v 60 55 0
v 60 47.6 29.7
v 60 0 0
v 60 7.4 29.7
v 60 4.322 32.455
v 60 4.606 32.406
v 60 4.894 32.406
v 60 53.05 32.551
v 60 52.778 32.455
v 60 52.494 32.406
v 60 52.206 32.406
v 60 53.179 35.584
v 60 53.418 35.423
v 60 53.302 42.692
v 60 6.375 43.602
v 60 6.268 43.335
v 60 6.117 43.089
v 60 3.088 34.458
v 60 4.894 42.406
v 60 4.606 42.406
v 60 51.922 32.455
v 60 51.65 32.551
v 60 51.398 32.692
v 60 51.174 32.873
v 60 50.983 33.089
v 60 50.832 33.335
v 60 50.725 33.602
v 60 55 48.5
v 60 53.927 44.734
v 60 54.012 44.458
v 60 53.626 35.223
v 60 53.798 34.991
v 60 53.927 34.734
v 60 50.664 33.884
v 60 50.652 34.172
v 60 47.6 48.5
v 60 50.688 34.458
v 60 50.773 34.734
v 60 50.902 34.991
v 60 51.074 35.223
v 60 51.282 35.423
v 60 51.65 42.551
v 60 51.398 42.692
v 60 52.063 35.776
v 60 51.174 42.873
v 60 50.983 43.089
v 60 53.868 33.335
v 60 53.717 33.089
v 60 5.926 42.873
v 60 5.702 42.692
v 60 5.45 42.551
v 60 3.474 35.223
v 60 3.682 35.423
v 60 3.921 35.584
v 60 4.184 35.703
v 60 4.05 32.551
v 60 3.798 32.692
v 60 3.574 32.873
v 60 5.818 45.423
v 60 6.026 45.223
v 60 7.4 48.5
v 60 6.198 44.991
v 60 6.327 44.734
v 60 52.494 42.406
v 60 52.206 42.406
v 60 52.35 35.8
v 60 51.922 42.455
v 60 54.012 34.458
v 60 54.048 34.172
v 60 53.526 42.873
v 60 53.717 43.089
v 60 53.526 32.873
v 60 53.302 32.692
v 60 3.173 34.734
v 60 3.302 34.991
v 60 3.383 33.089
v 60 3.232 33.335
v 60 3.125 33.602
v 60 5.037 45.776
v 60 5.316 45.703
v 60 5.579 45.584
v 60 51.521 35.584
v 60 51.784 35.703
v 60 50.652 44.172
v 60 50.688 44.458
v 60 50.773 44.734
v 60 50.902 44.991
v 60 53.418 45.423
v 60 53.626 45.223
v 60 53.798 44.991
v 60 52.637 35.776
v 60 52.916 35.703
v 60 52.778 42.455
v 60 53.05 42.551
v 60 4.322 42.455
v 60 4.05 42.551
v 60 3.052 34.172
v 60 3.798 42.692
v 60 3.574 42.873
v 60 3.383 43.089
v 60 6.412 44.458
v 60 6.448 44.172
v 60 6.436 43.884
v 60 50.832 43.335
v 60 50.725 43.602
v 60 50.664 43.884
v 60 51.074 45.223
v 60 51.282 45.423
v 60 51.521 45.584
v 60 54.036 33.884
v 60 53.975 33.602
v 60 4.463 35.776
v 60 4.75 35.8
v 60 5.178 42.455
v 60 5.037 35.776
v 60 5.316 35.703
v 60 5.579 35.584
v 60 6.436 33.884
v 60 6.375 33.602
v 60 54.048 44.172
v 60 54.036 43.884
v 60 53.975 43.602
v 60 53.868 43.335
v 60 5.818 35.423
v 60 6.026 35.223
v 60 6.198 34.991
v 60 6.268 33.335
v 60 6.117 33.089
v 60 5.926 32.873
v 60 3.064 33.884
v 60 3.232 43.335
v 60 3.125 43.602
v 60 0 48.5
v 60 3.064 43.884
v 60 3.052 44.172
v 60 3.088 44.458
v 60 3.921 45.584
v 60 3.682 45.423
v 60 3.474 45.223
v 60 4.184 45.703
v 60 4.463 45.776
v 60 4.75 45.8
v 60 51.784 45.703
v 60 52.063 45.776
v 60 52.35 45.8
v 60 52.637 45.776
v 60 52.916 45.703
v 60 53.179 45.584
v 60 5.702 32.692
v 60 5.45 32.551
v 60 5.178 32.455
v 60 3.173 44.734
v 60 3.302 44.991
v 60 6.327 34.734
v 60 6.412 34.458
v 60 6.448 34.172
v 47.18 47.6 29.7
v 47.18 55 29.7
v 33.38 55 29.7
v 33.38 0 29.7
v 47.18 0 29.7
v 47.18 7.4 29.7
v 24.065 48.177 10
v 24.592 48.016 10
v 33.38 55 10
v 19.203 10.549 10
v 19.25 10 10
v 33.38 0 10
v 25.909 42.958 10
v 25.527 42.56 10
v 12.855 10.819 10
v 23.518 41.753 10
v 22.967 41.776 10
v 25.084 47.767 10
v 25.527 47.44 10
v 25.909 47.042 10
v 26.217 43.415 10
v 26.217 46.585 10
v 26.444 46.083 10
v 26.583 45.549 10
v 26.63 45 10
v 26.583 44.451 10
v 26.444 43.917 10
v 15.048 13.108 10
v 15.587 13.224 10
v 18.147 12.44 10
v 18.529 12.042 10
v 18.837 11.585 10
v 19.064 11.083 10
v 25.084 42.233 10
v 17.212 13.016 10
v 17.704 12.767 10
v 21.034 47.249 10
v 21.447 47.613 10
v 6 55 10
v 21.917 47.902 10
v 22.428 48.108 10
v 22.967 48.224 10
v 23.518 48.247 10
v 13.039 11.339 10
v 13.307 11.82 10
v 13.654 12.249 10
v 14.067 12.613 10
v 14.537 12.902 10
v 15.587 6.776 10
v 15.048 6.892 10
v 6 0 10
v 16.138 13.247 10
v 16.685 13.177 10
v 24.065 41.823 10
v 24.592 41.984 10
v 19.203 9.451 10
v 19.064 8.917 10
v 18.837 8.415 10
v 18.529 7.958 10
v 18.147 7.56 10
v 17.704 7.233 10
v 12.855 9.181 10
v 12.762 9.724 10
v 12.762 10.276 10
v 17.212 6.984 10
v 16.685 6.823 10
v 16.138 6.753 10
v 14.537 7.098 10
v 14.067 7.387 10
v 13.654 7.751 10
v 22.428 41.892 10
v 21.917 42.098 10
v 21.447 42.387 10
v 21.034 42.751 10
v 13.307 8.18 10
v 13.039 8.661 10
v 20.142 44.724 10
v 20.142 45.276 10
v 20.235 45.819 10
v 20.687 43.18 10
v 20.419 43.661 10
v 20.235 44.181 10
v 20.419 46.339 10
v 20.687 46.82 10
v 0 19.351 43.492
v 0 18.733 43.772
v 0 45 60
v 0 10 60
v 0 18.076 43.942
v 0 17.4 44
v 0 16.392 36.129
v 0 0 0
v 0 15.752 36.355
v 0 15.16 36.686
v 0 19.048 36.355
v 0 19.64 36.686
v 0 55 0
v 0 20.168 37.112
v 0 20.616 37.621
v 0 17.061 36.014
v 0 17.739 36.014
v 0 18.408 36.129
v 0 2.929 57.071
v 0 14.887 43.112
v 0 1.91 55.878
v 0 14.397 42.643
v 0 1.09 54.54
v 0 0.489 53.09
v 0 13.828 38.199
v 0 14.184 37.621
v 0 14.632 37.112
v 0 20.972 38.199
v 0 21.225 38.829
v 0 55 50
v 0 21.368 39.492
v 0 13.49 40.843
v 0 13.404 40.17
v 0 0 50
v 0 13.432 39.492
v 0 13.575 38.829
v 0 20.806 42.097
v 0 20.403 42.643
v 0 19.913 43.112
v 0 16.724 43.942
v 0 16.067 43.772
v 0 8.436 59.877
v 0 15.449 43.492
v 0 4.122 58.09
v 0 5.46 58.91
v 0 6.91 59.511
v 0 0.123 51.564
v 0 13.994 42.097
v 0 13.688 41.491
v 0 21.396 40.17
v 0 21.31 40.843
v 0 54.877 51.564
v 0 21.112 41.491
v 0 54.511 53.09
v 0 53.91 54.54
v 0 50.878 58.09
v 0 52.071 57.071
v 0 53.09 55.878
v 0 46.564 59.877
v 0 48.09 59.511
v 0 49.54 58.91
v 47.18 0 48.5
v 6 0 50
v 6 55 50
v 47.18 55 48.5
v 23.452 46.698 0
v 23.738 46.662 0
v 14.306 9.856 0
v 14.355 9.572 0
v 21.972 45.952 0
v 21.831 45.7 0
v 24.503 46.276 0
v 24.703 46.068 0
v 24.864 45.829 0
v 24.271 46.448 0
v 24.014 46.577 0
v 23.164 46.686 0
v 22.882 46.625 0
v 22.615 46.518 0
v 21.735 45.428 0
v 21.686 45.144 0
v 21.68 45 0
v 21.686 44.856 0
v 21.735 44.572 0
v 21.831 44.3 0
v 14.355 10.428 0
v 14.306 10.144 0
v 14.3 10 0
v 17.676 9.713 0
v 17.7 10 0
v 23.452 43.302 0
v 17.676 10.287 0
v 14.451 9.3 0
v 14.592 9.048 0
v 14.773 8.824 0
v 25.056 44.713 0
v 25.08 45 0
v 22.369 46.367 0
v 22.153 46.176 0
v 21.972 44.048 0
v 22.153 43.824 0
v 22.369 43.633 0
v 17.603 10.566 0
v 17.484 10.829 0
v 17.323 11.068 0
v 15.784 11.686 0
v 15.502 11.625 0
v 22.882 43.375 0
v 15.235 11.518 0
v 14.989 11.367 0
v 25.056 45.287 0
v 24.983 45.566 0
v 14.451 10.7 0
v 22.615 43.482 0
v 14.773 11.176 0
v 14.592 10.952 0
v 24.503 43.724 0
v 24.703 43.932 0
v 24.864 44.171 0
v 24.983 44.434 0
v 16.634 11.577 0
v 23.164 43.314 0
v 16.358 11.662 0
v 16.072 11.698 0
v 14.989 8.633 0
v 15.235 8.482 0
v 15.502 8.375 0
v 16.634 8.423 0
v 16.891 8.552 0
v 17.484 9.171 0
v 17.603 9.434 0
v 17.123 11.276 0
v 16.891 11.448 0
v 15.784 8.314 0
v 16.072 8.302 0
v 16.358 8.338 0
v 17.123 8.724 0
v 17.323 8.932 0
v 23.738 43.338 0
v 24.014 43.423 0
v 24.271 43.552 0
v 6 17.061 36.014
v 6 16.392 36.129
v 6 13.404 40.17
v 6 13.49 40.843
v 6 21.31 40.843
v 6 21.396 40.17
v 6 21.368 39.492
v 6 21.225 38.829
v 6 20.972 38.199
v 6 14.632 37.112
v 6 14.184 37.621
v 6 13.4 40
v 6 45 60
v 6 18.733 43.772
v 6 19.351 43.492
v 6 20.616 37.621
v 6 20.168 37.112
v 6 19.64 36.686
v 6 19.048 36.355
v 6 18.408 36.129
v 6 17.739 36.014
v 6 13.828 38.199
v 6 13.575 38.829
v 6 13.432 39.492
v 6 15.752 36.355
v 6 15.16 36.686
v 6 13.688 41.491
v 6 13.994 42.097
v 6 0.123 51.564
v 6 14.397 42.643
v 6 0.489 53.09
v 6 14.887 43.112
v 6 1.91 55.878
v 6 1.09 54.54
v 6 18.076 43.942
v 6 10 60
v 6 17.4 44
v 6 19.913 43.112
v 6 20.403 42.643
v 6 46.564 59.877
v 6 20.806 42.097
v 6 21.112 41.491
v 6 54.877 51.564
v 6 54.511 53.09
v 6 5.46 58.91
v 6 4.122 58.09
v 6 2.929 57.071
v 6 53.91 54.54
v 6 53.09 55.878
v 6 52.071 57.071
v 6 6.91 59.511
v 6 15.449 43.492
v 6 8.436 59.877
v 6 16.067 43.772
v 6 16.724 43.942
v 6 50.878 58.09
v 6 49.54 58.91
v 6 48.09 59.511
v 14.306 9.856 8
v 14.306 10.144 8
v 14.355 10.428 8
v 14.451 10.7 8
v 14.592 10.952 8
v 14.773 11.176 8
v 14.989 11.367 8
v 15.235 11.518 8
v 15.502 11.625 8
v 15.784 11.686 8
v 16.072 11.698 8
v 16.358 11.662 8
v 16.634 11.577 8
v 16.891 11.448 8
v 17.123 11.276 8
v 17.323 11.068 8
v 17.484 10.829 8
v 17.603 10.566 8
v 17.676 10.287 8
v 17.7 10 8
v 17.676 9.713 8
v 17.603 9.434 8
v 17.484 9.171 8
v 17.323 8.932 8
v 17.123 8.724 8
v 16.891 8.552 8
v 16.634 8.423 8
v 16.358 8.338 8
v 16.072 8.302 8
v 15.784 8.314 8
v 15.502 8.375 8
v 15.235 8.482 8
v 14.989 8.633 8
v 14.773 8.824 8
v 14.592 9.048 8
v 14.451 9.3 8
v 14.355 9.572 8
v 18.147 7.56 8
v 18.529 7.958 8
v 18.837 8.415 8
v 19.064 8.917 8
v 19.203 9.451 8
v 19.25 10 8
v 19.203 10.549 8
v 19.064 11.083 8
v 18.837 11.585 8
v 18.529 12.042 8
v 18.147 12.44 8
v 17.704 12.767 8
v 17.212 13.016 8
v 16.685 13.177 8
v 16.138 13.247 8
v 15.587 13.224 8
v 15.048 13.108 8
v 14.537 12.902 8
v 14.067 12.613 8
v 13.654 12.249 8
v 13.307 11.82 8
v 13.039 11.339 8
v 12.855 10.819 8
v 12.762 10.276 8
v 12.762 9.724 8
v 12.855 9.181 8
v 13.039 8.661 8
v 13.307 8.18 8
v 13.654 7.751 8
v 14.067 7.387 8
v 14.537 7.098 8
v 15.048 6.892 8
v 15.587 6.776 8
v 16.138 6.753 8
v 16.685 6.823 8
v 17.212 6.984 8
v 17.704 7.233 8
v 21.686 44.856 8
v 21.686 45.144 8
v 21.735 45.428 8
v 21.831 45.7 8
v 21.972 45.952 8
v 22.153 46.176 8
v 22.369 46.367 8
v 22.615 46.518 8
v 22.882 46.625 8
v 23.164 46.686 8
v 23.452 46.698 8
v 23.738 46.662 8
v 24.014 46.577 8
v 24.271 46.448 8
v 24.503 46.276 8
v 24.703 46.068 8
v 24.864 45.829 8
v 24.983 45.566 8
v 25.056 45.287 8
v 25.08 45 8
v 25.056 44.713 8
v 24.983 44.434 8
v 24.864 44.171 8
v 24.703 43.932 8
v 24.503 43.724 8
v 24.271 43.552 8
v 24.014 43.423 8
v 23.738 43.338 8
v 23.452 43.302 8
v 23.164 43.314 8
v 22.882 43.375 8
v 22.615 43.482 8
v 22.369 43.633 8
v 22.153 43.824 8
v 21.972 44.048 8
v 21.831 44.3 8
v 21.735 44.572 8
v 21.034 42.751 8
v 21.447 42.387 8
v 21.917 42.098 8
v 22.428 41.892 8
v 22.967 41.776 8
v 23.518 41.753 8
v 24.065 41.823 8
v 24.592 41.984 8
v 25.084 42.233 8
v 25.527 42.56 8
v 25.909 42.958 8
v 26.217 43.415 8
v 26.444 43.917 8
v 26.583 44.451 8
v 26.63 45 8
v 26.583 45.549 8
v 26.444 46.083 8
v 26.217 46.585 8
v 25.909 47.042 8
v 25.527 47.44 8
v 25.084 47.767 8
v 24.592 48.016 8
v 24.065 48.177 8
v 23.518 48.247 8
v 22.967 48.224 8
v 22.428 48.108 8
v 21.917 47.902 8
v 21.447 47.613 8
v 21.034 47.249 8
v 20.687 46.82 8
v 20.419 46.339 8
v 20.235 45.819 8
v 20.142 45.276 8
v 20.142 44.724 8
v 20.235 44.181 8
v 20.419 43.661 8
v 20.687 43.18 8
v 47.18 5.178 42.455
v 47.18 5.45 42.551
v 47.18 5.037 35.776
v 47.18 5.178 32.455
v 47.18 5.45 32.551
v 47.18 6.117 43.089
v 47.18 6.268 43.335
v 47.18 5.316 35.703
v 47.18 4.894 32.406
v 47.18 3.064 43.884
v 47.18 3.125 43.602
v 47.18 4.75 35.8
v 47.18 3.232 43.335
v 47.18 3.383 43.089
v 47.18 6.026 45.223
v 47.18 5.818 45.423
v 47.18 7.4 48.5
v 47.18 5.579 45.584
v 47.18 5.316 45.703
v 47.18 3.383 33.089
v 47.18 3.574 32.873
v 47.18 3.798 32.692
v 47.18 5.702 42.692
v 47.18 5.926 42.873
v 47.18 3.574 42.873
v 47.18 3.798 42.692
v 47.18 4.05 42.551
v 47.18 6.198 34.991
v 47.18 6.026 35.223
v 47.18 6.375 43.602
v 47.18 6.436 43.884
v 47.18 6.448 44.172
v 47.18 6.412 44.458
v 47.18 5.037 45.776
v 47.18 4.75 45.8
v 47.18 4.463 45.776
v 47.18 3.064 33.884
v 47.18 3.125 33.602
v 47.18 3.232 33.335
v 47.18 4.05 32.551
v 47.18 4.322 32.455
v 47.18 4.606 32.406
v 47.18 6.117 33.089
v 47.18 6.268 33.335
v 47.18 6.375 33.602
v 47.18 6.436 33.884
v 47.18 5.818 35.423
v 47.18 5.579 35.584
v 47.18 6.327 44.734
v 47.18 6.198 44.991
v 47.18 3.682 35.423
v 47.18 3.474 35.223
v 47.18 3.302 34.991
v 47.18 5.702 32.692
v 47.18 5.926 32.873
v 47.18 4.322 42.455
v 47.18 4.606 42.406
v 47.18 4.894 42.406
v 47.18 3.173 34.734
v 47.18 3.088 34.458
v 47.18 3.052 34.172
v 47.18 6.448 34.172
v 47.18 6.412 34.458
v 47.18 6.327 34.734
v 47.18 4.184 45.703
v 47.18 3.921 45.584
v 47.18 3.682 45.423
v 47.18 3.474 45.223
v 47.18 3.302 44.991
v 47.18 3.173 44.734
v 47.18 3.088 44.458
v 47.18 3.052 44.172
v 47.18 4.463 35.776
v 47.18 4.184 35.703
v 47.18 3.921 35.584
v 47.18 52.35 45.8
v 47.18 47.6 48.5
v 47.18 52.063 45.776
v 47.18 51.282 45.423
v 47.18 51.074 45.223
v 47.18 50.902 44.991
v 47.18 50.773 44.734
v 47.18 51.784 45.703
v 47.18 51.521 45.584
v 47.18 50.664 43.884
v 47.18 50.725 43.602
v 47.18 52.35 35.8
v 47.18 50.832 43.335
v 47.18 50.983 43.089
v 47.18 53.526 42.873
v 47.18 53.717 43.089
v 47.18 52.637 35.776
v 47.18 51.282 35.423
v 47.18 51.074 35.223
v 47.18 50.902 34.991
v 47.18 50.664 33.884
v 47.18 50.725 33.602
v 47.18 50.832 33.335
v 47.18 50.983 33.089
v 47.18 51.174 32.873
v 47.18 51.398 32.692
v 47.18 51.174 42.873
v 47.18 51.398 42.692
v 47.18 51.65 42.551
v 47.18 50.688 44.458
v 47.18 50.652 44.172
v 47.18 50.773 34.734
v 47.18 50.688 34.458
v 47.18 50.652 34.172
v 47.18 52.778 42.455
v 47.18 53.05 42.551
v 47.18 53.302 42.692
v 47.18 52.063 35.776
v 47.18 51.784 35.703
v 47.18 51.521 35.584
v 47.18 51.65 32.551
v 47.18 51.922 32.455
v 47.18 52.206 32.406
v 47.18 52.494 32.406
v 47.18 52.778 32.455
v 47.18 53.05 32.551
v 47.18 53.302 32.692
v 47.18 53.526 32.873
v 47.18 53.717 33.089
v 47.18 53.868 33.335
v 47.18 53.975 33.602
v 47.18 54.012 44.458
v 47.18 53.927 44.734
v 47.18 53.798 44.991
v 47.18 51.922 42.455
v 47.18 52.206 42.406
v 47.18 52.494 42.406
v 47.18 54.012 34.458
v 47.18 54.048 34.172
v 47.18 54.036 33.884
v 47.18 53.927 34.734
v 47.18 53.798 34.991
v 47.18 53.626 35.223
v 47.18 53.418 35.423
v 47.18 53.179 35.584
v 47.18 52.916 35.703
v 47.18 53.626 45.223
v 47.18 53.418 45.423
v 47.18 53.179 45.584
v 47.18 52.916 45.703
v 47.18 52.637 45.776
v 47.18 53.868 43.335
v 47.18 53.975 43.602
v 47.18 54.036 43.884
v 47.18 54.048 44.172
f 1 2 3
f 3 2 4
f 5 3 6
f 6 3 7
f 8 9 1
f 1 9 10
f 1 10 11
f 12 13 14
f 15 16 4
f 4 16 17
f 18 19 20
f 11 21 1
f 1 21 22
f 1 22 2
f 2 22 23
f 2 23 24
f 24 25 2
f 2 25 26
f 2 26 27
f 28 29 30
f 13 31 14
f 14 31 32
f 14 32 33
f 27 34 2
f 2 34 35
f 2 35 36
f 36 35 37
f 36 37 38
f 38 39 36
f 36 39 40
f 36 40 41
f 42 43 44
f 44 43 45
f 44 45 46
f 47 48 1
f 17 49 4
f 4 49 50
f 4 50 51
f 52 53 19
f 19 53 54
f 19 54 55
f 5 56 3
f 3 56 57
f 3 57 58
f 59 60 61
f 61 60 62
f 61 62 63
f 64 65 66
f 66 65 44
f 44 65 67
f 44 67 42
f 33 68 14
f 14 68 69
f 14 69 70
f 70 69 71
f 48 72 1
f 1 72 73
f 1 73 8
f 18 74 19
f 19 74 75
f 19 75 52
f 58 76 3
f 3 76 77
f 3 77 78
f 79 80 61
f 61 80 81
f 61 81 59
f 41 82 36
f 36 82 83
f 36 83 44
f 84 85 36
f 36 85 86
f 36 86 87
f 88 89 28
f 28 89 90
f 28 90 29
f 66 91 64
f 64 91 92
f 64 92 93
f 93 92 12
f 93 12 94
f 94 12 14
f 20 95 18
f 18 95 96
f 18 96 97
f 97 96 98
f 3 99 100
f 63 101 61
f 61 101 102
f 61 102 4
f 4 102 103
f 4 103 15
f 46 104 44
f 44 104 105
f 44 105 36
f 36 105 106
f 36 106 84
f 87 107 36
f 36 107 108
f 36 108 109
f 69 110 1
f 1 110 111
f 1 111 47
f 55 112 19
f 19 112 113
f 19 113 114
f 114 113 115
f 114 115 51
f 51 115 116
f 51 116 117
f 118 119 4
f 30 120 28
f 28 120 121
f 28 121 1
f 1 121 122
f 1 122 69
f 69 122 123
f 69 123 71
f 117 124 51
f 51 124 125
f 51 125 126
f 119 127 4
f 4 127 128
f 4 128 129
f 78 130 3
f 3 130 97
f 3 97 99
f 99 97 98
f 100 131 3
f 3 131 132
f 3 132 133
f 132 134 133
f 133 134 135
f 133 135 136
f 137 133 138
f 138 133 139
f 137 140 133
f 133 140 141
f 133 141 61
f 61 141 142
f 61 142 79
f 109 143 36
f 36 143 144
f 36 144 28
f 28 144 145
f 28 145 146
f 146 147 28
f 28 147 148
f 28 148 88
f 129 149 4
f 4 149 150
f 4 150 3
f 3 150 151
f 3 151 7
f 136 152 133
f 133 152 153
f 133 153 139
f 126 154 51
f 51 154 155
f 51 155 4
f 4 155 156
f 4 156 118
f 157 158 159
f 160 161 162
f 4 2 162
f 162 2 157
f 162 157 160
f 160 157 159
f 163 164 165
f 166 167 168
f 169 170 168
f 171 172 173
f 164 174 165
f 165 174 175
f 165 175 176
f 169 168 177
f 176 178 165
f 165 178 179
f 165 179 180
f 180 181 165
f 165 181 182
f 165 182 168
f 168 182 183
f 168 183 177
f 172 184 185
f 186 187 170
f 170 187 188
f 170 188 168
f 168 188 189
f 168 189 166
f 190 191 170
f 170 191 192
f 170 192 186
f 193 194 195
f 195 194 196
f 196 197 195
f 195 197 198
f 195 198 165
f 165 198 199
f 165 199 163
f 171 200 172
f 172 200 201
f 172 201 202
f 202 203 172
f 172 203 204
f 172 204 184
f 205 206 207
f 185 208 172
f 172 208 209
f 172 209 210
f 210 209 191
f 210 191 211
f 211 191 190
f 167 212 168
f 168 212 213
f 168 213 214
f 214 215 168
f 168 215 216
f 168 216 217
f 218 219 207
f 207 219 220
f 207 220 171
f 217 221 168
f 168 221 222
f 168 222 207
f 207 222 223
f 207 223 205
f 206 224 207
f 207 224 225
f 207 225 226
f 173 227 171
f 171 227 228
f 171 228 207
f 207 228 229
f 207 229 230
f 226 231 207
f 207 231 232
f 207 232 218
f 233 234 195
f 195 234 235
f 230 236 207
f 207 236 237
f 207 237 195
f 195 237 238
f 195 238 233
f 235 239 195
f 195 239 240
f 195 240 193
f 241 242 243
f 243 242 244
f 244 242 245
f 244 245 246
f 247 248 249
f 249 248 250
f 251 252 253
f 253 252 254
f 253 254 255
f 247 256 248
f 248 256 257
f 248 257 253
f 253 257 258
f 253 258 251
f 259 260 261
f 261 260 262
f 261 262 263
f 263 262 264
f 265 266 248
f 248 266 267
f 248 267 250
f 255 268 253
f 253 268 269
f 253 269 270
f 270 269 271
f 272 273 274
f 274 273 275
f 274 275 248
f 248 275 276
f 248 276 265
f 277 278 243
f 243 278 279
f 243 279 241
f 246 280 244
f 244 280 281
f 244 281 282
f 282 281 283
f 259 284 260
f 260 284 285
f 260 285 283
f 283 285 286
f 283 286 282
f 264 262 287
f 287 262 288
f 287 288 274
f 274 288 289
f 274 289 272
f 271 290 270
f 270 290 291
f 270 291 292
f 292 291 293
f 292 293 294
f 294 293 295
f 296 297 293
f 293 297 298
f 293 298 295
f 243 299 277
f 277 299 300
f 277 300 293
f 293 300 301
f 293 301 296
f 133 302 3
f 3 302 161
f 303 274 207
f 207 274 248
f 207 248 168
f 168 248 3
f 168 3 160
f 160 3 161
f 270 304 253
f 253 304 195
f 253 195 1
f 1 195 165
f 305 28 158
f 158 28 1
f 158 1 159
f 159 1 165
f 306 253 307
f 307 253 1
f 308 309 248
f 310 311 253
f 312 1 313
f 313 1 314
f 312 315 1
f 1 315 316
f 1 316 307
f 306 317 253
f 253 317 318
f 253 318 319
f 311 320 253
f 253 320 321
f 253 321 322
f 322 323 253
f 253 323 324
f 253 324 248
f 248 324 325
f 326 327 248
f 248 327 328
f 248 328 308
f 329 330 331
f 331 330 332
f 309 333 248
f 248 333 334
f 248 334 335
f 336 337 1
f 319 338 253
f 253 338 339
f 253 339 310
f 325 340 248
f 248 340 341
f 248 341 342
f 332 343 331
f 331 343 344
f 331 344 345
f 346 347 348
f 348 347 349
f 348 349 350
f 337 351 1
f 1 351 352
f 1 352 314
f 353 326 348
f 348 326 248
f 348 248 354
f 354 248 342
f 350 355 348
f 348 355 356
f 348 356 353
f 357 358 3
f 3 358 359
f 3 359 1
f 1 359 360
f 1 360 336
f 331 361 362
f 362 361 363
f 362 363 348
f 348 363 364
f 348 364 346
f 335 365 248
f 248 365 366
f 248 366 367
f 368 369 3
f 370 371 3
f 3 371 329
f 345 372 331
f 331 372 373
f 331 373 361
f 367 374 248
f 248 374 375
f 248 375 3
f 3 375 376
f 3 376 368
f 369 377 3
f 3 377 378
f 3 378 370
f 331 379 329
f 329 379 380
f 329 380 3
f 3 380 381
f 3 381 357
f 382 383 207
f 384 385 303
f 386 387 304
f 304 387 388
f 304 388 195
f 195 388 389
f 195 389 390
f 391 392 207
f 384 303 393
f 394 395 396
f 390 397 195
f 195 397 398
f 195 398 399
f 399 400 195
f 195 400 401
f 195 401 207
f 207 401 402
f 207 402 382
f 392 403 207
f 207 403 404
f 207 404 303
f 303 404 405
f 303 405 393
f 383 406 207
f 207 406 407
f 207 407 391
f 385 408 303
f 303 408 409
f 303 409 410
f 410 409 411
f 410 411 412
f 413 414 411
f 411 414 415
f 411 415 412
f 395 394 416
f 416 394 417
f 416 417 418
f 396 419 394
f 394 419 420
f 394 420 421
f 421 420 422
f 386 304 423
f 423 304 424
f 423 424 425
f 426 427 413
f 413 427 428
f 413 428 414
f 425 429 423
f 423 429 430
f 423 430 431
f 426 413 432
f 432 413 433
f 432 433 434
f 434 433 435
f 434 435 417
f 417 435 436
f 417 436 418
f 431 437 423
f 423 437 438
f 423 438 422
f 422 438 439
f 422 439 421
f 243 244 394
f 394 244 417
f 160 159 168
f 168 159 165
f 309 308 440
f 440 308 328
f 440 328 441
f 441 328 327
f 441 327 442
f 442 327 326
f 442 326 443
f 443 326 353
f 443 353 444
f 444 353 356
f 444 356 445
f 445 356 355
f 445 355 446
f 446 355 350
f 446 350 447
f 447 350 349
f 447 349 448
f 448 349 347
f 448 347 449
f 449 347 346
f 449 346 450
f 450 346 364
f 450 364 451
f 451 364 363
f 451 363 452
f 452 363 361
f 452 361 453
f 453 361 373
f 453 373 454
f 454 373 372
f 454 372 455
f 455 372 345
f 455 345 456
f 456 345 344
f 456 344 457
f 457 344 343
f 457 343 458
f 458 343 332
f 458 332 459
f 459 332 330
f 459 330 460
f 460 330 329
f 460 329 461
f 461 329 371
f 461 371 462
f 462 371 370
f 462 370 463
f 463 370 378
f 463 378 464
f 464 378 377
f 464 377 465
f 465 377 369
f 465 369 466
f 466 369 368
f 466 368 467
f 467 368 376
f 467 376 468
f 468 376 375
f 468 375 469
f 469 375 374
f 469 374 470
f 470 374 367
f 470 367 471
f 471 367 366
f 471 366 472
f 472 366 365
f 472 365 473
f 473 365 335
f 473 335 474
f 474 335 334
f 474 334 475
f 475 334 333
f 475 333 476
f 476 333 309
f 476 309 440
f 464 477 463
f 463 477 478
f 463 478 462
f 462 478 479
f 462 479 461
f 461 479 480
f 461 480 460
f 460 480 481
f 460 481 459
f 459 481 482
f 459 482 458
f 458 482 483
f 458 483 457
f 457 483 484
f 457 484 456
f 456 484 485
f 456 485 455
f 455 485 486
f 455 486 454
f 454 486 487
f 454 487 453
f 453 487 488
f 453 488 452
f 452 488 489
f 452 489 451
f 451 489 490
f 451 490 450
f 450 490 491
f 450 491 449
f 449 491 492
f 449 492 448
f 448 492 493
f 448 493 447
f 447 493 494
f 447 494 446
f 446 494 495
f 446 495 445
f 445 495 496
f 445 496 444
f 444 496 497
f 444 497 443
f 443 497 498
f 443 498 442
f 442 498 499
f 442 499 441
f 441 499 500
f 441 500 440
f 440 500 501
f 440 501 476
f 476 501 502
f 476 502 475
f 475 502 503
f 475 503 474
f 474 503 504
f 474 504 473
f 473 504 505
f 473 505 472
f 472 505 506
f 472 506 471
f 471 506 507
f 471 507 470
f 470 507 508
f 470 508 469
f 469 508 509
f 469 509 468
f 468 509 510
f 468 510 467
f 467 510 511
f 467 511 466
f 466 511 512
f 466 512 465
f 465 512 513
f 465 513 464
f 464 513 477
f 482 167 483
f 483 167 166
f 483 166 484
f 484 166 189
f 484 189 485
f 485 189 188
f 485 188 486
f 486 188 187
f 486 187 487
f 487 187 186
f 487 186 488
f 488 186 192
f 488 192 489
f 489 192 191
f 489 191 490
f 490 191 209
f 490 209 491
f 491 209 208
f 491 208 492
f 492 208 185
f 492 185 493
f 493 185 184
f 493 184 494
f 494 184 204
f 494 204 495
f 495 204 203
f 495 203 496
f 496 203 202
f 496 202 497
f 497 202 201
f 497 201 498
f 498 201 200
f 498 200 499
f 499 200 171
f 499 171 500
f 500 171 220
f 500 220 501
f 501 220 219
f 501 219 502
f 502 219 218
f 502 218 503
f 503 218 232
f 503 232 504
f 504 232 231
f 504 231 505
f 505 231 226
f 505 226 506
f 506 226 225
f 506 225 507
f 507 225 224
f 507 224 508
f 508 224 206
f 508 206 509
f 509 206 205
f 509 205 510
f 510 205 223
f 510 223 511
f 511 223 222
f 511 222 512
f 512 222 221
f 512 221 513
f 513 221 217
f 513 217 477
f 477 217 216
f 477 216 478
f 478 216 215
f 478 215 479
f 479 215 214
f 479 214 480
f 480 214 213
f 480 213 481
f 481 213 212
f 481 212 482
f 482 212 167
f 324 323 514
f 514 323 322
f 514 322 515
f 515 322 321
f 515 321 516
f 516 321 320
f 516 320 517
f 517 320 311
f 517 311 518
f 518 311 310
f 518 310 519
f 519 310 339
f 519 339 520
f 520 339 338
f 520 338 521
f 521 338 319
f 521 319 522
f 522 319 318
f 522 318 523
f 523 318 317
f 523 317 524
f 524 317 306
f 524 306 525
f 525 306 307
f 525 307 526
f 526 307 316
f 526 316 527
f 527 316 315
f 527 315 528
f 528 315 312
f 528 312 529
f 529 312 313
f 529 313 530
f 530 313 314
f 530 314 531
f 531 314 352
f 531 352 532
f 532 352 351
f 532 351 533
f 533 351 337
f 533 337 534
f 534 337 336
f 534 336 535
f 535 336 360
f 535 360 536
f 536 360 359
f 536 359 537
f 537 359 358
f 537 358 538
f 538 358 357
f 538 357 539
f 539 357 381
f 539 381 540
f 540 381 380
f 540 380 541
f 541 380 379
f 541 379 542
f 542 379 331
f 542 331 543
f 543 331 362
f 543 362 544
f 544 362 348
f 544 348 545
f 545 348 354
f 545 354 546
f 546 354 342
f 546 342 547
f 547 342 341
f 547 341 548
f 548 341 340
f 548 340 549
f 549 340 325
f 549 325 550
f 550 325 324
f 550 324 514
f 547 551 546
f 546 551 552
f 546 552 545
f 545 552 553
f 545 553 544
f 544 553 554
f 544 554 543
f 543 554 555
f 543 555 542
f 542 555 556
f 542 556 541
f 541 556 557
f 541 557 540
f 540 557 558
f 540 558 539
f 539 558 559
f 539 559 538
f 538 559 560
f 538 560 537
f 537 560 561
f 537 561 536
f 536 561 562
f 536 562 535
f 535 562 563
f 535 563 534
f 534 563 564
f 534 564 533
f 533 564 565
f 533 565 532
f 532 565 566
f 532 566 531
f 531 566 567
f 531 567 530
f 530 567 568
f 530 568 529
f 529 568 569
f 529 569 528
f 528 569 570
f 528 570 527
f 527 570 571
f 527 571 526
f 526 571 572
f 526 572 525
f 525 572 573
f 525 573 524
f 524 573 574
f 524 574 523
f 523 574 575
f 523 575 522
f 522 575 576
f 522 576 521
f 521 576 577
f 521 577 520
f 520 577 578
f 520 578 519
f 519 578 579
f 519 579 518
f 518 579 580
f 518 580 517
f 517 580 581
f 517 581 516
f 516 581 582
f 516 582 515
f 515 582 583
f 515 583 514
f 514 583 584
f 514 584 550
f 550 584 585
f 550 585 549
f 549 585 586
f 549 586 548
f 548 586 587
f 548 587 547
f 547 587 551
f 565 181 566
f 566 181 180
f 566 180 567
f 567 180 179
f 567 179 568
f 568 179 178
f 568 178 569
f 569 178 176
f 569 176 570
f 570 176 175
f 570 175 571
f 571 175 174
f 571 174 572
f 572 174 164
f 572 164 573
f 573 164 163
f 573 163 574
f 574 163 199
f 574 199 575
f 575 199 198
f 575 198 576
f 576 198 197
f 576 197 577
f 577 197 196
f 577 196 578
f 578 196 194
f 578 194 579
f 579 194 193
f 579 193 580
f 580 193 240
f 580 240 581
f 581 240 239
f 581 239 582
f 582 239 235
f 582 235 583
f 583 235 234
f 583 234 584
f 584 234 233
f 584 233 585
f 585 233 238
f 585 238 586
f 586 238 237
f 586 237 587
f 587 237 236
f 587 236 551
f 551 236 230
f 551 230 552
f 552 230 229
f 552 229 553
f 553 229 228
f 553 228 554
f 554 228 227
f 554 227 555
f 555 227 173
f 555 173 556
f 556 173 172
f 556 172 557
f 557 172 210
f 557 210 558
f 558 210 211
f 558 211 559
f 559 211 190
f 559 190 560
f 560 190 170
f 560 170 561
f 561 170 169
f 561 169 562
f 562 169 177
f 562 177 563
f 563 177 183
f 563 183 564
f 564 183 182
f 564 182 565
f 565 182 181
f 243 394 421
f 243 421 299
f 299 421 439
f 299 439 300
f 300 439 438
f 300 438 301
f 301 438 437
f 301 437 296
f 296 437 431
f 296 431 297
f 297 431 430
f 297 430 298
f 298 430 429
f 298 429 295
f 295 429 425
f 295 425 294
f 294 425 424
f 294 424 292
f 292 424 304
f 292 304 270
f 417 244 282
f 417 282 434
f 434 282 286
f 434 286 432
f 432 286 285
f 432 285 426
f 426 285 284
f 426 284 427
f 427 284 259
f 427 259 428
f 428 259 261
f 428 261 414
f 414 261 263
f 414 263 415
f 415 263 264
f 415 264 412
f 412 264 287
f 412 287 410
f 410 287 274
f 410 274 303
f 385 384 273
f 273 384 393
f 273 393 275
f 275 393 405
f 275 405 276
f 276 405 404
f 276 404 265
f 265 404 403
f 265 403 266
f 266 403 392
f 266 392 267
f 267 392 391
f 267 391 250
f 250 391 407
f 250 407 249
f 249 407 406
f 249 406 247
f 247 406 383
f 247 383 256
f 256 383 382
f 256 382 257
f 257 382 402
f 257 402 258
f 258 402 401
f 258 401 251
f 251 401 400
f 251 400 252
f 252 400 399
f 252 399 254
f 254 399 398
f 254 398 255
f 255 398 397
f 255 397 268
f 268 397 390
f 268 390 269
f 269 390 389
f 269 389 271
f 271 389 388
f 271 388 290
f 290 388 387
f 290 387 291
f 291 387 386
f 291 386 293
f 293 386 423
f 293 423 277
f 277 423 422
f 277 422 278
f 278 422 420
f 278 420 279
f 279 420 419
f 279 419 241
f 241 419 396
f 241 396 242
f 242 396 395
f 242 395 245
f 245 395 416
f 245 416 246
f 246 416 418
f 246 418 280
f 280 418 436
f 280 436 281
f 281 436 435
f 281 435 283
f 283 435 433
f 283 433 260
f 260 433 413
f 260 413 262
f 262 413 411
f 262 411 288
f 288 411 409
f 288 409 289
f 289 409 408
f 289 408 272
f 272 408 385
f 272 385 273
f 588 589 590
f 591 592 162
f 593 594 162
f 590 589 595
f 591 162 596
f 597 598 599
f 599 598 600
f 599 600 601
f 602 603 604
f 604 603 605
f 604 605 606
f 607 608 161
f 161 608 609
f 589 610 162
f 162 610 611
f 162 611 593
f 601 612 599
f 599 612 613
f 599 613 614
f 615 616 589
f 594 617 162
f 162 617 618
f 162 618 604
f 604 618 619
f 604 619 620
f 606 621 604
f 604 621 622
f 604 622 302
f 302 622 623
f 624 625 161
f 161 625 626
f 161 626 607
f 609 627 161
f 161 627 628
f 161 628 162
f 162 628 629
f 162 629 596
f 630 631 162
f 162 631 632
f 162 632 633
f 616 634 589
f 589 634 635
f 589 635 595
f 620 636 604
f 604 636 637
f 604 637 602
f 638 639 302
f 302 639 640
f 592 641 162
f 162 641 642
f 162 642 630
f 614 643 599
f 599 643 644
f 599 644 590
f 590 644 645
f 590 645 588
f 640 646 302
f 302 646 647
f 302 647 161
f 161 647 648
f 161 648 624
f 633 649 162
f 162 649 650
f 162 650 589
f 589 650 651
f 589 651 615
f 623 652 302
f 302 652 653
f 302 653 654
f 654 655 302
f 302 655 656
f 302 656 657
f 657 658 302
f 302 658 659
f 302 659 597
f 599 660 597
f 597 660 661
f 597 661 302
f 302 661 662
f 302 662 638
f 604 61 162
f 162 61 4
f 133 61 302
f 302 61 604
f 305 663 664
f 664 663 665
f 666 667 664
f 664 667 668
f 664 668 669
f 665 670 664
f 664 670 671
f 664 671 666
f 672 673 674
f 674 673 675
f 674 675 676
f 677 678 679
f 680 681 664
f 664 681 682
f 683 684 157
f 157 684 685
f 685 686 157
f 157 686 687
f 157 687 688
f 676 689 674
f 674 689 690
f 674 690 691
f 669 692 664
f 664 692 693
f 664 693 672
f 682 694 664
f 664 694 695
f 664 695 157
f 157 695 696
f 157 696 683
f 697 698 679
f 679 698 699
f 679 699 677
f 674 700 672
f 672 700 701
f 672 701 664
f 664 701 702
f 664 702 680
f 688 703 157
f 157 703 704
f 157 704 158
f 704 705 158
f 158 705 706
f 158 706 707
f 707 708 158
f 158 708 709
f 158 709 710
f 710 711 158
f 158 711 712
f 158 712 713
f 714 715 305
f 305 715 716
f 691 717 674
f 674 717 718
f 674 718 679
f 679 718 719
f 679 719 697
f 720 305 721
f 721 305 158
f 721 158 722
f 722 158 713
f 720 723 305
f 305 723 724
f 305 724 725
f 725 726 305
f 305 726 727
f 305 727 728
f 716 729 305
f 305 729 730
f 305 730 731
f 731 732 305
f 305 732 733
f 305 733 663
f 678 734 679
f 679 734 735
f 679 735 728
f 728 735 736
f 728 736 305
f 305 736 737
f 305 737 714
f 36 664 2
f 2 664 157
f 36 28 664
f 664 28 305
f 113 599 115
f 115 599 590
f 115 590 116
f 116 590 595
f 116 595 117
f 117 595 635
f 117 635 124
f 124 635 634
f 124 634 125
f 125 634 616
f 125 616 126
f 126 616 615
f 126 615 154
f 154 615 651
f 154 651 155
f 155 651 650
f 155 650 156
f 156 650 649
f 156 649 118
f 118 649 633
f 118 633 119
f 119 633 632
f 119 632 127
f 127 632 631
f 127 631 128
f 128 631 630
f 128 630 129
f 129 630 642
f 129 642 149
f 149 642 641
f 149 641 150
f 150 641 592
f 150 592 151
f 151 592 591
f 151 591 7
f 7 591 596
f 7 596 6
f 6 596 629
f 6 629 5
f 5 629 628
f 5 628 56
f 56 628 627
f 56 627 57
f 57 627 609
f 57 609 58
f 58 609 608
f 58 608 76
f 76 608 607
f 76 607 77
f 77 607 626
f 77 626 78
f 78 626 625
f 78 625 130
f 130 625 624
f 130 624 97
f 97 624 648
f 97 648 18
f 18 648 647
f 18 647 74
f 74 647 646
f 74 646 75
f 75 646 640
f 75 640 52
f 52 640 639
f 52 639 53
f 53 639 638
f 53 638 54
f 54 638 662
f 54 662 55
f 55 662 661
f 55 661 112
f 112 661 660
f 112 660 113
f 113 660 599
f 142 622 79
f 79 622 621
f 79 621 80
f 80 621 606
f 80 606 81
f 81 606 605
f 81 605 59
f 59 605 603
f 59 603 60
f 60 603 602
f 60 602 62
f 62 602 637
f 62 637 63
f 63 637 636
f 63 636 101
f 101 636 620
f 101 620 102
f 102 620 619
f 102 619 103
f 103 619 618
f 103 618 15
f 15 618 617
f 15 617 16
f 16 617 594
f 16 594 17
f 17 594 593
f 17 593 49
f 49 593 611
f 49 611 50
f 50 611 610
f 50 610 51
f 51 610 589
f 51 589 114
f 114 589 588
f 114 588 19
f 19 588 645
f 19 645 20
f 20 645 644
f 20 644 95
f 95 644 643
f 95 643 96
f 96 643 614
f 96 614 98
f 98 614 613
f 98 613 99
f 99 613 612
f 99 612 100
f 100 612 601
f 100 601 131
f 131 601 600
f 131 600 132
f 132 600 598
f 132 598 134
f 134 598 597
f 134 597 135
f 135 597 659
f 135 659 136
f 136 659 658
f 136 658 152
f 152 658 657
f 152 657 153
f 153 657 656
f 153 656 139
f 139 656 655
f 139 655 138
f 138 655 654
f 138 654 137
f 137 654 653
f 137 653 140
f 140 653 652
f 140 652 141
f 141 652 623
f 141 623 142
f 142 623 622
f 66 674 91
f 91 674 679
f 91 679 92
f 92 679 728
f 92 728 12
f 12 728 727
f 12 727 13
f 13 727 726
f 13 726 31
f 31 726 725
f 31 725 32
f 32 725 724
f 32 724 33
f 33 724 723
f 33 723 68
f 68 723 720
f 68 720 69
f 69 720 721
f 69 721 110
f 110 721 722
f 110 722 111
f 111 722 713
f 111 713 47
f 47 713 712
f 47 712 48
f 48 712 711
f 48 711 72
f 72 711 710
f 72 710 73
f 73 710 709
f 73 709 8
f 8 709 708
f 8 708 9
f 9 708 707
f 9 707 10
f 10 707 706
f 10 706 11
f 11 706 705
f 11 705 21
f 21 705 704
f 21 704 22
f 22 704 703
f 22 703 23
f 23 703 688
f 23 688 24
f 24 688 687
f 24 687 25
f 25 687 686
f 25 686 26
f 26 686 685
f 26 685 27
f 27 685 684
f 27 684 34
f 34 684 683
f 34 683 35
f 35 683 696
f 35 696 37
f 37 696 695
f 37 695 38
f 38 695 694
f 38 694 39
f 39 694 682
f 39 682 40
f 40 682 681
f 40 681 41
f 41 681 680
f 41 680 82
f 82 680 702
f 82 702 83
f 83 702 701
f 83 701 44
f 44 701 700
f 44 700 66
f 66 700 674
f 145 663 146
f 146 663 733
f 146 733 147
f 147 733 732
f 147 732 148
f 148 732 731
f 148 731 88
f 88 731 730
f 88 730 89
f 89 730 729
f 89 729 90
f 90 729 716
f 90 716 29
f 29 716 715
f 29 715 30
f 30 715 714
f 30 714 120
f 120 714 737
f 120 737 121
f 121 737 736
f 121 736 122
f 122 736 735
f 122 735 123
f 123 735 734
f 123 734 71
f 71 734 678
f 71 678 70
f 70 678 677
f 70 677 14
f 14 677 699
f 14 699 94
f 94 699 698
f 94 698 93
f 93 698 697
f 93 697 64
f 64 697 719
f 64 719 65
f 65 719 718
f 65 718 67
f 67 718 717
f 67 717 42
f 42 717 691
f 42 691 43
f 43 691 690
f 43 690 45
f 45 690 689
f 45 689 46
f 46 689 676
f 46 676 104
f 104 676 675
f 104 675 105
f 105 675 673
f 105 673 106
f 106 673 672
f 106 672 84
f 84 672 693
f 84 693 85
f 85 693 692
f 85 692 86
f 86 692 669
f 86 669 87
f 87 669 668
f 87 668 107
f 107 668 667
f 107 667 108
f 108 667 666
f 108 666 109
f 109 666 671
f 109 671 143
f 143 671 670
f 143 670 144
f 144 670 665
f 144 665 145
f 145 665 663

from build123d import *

# Parameters (mm, degrees)
ESQUISSE1_W                                          = 60
ESQUISSE1_H                                          = 55
BOSS_EXTRU_1_DEPTH                                   = 10
ESQUISSE2_W                                          = 6
ESQUISSE2_H                                          = 55
BOSS_EXTRU_2_DEPTH                                   = 50
ESQUISSE3_W                                          = 26.62
ESQUISSE3_H                                          = 55
BOSS_EXTRU_3_DEPTH                                   = 19.7
CHAMBRAGE_POUR_T_TE_CYLINDRIQUE_FENDUE_M_D           = 3.4
CHAMBRAGE_POUR_T_TE_CYLINDRIQUE_FENDUE_M_DEPTH       = 10
CHAMBRAGE_POUR_T_TE_CYLINDRIQUE_FENDUE_M_CBORE_D     = 6.5
CHAMBRAGE_POUR_T_TE_CYLINDRIQUE_FENDUE_M_CBORE_DEPTH = 2
CHAMBRAGE_POUR_T_TE_CYLINDRIQUE_FENDUE_M_TIP         = 1.021463052
CONG_1_R                                             = 10
ESQUISSE8_R                                          = 4
ENL_V_MAT_EXTRU_2_DEPTH                              = 6
ESQUISSE12_W                                         = 12.82
ESQUISSE12_H                                         = 7.4
BOSS_EXTRU_4_DEPTH                                   = 18.8
D_GAGEMENT_M32_D                                     = 3.4
D_GAGEMENT_M32_DEPTH                                 = 12.82
D_GAGEMENT_M32_TIP                                   = 1.021463052


with BuildPart() as part:
    # Esquisse1 → Boss.-Extru.1 (new body)
    with BuildSketch(Plane.XY):
        with Locations((30, 27.5)):
            Rectangle(ESQUISSE1_W, ESQUISSE1_H)
    extrude(amount=BOSS_EXTRU_1_DEPTH)

    # Esquisse2 → Boss.-Extru.2 (add)
    with BuildSketch(Plane.XY.offset(10)):
        with Locations((3, 27.5)):
            Rectangle(ESQUISSE2_W, ESQUISSE2_H)
    extrude(amount=BOSS_EXTRU_2_DEPTH)

    # Esquisse3 → Boss.-Extru.3 (add)
    with BuildSketch(Plane.XY.offset(10)):
        with Locations((46.69, 27.5)):
            Rectangle(ESQUISSE3_W, ESQUISSE3_H)
    extrude(amount=BOSS_EXTRU_3_DEPTH)

    # Chambrage pour tête cylindrique fendue M31
    with Locations(Plane.XY.offset(10)):
        with Locations((23.38, 45), (16, 10)):
            CounterBoreHole(CHAMBRAGE_POUR_T_TE_CYLINDRIQUE_FENDUE_M_D / 2, CHAMBRAGE_POUR_T_TE_CYLINDRIQUE_FENDUE_M_CBORE_D / 2, CHAMBRAGE_POUR_T_TE_CYLINDRIQUE_FENDUE_M_CBORE_DEPTH, depth=CHAMBRAGE_POUR_T_TE_CYLINDRIQUE_FENDUE_M_DEPTH)
            with Locations((0, 0, -(CHAMBRAGE_POUR_T_TE_CYLINDRIQUE_FENDUE_M_DEPTH + CHAMBRAGE_POUR_T_TE_CYLINDRIQUE_FENDUE_M_TIP / 2))):  # 118° drill point
                Cone(0, CHAMBRAGE_POUR_T_TE_CYLINDRIQUE_FENDUE_M_D / 2, CHAMBRAGE_POUR_T_TE_CYLINDRIQUE_FENDUE_M_TIP, mode=Mode.SUBTRACT)

    # Congé1
    cong_1_edges = [part.edges().sort_by_distance(p)[0] for p in [
        (3, 0, 60),
        (3, 55, 60),
    ]]
    fillet(cong_1_edges, radius=CONG_1_R)

    # Esquisse8 → Enlèv. mat.-Extru.2 (cut)
    with BuildSketch(Plane.ZY):
        with Locations((40, 17.4)):
            Circle(ESQUISSE8_R)
    extrude(amount=-ENL_V_MAT_EXTRU_2_DEPTH, mode=Mode.SUBTRACT)

    # Esquisse12 → Boss.-Extru.4 (add)
    with BuildSketch(Plane.XY.offset(29.7)):
        with Locations((53.59, 3.7)):
            Rectangle(ESQUISSE12_W, ESQUISSE12_H)
        with Locations((53.59, 51.3)):
            Rectangle(ESQUISSE12_W, ESQUISSE12_H)
    extrude(amount=BOSS_EXTRU_4_DEPTH)

    # Dégagement M32
    with Locations(Plane.ZY.offset(-47.18)):
        with Locations((44.1, 52.35), (34.1, 52.35), (44.1, 4.75), (34.1, 4.75)):
            Hole(D_GAGEMENT_M32_D / 2, depth=D_GAGEMENT_M32_DEPTH)
            with Locations((0, 0, -(D_GAGEMENT_M32_DEPTH + D_GAGEMENT_M32_TIP / 2))):  # 118° drill point
                Cone(0, D_GAGEMENT_M32_D / 2, D_GAGEMENT_M32_TIP, mode=Mode.SUBTRACT)


solid = part.part
